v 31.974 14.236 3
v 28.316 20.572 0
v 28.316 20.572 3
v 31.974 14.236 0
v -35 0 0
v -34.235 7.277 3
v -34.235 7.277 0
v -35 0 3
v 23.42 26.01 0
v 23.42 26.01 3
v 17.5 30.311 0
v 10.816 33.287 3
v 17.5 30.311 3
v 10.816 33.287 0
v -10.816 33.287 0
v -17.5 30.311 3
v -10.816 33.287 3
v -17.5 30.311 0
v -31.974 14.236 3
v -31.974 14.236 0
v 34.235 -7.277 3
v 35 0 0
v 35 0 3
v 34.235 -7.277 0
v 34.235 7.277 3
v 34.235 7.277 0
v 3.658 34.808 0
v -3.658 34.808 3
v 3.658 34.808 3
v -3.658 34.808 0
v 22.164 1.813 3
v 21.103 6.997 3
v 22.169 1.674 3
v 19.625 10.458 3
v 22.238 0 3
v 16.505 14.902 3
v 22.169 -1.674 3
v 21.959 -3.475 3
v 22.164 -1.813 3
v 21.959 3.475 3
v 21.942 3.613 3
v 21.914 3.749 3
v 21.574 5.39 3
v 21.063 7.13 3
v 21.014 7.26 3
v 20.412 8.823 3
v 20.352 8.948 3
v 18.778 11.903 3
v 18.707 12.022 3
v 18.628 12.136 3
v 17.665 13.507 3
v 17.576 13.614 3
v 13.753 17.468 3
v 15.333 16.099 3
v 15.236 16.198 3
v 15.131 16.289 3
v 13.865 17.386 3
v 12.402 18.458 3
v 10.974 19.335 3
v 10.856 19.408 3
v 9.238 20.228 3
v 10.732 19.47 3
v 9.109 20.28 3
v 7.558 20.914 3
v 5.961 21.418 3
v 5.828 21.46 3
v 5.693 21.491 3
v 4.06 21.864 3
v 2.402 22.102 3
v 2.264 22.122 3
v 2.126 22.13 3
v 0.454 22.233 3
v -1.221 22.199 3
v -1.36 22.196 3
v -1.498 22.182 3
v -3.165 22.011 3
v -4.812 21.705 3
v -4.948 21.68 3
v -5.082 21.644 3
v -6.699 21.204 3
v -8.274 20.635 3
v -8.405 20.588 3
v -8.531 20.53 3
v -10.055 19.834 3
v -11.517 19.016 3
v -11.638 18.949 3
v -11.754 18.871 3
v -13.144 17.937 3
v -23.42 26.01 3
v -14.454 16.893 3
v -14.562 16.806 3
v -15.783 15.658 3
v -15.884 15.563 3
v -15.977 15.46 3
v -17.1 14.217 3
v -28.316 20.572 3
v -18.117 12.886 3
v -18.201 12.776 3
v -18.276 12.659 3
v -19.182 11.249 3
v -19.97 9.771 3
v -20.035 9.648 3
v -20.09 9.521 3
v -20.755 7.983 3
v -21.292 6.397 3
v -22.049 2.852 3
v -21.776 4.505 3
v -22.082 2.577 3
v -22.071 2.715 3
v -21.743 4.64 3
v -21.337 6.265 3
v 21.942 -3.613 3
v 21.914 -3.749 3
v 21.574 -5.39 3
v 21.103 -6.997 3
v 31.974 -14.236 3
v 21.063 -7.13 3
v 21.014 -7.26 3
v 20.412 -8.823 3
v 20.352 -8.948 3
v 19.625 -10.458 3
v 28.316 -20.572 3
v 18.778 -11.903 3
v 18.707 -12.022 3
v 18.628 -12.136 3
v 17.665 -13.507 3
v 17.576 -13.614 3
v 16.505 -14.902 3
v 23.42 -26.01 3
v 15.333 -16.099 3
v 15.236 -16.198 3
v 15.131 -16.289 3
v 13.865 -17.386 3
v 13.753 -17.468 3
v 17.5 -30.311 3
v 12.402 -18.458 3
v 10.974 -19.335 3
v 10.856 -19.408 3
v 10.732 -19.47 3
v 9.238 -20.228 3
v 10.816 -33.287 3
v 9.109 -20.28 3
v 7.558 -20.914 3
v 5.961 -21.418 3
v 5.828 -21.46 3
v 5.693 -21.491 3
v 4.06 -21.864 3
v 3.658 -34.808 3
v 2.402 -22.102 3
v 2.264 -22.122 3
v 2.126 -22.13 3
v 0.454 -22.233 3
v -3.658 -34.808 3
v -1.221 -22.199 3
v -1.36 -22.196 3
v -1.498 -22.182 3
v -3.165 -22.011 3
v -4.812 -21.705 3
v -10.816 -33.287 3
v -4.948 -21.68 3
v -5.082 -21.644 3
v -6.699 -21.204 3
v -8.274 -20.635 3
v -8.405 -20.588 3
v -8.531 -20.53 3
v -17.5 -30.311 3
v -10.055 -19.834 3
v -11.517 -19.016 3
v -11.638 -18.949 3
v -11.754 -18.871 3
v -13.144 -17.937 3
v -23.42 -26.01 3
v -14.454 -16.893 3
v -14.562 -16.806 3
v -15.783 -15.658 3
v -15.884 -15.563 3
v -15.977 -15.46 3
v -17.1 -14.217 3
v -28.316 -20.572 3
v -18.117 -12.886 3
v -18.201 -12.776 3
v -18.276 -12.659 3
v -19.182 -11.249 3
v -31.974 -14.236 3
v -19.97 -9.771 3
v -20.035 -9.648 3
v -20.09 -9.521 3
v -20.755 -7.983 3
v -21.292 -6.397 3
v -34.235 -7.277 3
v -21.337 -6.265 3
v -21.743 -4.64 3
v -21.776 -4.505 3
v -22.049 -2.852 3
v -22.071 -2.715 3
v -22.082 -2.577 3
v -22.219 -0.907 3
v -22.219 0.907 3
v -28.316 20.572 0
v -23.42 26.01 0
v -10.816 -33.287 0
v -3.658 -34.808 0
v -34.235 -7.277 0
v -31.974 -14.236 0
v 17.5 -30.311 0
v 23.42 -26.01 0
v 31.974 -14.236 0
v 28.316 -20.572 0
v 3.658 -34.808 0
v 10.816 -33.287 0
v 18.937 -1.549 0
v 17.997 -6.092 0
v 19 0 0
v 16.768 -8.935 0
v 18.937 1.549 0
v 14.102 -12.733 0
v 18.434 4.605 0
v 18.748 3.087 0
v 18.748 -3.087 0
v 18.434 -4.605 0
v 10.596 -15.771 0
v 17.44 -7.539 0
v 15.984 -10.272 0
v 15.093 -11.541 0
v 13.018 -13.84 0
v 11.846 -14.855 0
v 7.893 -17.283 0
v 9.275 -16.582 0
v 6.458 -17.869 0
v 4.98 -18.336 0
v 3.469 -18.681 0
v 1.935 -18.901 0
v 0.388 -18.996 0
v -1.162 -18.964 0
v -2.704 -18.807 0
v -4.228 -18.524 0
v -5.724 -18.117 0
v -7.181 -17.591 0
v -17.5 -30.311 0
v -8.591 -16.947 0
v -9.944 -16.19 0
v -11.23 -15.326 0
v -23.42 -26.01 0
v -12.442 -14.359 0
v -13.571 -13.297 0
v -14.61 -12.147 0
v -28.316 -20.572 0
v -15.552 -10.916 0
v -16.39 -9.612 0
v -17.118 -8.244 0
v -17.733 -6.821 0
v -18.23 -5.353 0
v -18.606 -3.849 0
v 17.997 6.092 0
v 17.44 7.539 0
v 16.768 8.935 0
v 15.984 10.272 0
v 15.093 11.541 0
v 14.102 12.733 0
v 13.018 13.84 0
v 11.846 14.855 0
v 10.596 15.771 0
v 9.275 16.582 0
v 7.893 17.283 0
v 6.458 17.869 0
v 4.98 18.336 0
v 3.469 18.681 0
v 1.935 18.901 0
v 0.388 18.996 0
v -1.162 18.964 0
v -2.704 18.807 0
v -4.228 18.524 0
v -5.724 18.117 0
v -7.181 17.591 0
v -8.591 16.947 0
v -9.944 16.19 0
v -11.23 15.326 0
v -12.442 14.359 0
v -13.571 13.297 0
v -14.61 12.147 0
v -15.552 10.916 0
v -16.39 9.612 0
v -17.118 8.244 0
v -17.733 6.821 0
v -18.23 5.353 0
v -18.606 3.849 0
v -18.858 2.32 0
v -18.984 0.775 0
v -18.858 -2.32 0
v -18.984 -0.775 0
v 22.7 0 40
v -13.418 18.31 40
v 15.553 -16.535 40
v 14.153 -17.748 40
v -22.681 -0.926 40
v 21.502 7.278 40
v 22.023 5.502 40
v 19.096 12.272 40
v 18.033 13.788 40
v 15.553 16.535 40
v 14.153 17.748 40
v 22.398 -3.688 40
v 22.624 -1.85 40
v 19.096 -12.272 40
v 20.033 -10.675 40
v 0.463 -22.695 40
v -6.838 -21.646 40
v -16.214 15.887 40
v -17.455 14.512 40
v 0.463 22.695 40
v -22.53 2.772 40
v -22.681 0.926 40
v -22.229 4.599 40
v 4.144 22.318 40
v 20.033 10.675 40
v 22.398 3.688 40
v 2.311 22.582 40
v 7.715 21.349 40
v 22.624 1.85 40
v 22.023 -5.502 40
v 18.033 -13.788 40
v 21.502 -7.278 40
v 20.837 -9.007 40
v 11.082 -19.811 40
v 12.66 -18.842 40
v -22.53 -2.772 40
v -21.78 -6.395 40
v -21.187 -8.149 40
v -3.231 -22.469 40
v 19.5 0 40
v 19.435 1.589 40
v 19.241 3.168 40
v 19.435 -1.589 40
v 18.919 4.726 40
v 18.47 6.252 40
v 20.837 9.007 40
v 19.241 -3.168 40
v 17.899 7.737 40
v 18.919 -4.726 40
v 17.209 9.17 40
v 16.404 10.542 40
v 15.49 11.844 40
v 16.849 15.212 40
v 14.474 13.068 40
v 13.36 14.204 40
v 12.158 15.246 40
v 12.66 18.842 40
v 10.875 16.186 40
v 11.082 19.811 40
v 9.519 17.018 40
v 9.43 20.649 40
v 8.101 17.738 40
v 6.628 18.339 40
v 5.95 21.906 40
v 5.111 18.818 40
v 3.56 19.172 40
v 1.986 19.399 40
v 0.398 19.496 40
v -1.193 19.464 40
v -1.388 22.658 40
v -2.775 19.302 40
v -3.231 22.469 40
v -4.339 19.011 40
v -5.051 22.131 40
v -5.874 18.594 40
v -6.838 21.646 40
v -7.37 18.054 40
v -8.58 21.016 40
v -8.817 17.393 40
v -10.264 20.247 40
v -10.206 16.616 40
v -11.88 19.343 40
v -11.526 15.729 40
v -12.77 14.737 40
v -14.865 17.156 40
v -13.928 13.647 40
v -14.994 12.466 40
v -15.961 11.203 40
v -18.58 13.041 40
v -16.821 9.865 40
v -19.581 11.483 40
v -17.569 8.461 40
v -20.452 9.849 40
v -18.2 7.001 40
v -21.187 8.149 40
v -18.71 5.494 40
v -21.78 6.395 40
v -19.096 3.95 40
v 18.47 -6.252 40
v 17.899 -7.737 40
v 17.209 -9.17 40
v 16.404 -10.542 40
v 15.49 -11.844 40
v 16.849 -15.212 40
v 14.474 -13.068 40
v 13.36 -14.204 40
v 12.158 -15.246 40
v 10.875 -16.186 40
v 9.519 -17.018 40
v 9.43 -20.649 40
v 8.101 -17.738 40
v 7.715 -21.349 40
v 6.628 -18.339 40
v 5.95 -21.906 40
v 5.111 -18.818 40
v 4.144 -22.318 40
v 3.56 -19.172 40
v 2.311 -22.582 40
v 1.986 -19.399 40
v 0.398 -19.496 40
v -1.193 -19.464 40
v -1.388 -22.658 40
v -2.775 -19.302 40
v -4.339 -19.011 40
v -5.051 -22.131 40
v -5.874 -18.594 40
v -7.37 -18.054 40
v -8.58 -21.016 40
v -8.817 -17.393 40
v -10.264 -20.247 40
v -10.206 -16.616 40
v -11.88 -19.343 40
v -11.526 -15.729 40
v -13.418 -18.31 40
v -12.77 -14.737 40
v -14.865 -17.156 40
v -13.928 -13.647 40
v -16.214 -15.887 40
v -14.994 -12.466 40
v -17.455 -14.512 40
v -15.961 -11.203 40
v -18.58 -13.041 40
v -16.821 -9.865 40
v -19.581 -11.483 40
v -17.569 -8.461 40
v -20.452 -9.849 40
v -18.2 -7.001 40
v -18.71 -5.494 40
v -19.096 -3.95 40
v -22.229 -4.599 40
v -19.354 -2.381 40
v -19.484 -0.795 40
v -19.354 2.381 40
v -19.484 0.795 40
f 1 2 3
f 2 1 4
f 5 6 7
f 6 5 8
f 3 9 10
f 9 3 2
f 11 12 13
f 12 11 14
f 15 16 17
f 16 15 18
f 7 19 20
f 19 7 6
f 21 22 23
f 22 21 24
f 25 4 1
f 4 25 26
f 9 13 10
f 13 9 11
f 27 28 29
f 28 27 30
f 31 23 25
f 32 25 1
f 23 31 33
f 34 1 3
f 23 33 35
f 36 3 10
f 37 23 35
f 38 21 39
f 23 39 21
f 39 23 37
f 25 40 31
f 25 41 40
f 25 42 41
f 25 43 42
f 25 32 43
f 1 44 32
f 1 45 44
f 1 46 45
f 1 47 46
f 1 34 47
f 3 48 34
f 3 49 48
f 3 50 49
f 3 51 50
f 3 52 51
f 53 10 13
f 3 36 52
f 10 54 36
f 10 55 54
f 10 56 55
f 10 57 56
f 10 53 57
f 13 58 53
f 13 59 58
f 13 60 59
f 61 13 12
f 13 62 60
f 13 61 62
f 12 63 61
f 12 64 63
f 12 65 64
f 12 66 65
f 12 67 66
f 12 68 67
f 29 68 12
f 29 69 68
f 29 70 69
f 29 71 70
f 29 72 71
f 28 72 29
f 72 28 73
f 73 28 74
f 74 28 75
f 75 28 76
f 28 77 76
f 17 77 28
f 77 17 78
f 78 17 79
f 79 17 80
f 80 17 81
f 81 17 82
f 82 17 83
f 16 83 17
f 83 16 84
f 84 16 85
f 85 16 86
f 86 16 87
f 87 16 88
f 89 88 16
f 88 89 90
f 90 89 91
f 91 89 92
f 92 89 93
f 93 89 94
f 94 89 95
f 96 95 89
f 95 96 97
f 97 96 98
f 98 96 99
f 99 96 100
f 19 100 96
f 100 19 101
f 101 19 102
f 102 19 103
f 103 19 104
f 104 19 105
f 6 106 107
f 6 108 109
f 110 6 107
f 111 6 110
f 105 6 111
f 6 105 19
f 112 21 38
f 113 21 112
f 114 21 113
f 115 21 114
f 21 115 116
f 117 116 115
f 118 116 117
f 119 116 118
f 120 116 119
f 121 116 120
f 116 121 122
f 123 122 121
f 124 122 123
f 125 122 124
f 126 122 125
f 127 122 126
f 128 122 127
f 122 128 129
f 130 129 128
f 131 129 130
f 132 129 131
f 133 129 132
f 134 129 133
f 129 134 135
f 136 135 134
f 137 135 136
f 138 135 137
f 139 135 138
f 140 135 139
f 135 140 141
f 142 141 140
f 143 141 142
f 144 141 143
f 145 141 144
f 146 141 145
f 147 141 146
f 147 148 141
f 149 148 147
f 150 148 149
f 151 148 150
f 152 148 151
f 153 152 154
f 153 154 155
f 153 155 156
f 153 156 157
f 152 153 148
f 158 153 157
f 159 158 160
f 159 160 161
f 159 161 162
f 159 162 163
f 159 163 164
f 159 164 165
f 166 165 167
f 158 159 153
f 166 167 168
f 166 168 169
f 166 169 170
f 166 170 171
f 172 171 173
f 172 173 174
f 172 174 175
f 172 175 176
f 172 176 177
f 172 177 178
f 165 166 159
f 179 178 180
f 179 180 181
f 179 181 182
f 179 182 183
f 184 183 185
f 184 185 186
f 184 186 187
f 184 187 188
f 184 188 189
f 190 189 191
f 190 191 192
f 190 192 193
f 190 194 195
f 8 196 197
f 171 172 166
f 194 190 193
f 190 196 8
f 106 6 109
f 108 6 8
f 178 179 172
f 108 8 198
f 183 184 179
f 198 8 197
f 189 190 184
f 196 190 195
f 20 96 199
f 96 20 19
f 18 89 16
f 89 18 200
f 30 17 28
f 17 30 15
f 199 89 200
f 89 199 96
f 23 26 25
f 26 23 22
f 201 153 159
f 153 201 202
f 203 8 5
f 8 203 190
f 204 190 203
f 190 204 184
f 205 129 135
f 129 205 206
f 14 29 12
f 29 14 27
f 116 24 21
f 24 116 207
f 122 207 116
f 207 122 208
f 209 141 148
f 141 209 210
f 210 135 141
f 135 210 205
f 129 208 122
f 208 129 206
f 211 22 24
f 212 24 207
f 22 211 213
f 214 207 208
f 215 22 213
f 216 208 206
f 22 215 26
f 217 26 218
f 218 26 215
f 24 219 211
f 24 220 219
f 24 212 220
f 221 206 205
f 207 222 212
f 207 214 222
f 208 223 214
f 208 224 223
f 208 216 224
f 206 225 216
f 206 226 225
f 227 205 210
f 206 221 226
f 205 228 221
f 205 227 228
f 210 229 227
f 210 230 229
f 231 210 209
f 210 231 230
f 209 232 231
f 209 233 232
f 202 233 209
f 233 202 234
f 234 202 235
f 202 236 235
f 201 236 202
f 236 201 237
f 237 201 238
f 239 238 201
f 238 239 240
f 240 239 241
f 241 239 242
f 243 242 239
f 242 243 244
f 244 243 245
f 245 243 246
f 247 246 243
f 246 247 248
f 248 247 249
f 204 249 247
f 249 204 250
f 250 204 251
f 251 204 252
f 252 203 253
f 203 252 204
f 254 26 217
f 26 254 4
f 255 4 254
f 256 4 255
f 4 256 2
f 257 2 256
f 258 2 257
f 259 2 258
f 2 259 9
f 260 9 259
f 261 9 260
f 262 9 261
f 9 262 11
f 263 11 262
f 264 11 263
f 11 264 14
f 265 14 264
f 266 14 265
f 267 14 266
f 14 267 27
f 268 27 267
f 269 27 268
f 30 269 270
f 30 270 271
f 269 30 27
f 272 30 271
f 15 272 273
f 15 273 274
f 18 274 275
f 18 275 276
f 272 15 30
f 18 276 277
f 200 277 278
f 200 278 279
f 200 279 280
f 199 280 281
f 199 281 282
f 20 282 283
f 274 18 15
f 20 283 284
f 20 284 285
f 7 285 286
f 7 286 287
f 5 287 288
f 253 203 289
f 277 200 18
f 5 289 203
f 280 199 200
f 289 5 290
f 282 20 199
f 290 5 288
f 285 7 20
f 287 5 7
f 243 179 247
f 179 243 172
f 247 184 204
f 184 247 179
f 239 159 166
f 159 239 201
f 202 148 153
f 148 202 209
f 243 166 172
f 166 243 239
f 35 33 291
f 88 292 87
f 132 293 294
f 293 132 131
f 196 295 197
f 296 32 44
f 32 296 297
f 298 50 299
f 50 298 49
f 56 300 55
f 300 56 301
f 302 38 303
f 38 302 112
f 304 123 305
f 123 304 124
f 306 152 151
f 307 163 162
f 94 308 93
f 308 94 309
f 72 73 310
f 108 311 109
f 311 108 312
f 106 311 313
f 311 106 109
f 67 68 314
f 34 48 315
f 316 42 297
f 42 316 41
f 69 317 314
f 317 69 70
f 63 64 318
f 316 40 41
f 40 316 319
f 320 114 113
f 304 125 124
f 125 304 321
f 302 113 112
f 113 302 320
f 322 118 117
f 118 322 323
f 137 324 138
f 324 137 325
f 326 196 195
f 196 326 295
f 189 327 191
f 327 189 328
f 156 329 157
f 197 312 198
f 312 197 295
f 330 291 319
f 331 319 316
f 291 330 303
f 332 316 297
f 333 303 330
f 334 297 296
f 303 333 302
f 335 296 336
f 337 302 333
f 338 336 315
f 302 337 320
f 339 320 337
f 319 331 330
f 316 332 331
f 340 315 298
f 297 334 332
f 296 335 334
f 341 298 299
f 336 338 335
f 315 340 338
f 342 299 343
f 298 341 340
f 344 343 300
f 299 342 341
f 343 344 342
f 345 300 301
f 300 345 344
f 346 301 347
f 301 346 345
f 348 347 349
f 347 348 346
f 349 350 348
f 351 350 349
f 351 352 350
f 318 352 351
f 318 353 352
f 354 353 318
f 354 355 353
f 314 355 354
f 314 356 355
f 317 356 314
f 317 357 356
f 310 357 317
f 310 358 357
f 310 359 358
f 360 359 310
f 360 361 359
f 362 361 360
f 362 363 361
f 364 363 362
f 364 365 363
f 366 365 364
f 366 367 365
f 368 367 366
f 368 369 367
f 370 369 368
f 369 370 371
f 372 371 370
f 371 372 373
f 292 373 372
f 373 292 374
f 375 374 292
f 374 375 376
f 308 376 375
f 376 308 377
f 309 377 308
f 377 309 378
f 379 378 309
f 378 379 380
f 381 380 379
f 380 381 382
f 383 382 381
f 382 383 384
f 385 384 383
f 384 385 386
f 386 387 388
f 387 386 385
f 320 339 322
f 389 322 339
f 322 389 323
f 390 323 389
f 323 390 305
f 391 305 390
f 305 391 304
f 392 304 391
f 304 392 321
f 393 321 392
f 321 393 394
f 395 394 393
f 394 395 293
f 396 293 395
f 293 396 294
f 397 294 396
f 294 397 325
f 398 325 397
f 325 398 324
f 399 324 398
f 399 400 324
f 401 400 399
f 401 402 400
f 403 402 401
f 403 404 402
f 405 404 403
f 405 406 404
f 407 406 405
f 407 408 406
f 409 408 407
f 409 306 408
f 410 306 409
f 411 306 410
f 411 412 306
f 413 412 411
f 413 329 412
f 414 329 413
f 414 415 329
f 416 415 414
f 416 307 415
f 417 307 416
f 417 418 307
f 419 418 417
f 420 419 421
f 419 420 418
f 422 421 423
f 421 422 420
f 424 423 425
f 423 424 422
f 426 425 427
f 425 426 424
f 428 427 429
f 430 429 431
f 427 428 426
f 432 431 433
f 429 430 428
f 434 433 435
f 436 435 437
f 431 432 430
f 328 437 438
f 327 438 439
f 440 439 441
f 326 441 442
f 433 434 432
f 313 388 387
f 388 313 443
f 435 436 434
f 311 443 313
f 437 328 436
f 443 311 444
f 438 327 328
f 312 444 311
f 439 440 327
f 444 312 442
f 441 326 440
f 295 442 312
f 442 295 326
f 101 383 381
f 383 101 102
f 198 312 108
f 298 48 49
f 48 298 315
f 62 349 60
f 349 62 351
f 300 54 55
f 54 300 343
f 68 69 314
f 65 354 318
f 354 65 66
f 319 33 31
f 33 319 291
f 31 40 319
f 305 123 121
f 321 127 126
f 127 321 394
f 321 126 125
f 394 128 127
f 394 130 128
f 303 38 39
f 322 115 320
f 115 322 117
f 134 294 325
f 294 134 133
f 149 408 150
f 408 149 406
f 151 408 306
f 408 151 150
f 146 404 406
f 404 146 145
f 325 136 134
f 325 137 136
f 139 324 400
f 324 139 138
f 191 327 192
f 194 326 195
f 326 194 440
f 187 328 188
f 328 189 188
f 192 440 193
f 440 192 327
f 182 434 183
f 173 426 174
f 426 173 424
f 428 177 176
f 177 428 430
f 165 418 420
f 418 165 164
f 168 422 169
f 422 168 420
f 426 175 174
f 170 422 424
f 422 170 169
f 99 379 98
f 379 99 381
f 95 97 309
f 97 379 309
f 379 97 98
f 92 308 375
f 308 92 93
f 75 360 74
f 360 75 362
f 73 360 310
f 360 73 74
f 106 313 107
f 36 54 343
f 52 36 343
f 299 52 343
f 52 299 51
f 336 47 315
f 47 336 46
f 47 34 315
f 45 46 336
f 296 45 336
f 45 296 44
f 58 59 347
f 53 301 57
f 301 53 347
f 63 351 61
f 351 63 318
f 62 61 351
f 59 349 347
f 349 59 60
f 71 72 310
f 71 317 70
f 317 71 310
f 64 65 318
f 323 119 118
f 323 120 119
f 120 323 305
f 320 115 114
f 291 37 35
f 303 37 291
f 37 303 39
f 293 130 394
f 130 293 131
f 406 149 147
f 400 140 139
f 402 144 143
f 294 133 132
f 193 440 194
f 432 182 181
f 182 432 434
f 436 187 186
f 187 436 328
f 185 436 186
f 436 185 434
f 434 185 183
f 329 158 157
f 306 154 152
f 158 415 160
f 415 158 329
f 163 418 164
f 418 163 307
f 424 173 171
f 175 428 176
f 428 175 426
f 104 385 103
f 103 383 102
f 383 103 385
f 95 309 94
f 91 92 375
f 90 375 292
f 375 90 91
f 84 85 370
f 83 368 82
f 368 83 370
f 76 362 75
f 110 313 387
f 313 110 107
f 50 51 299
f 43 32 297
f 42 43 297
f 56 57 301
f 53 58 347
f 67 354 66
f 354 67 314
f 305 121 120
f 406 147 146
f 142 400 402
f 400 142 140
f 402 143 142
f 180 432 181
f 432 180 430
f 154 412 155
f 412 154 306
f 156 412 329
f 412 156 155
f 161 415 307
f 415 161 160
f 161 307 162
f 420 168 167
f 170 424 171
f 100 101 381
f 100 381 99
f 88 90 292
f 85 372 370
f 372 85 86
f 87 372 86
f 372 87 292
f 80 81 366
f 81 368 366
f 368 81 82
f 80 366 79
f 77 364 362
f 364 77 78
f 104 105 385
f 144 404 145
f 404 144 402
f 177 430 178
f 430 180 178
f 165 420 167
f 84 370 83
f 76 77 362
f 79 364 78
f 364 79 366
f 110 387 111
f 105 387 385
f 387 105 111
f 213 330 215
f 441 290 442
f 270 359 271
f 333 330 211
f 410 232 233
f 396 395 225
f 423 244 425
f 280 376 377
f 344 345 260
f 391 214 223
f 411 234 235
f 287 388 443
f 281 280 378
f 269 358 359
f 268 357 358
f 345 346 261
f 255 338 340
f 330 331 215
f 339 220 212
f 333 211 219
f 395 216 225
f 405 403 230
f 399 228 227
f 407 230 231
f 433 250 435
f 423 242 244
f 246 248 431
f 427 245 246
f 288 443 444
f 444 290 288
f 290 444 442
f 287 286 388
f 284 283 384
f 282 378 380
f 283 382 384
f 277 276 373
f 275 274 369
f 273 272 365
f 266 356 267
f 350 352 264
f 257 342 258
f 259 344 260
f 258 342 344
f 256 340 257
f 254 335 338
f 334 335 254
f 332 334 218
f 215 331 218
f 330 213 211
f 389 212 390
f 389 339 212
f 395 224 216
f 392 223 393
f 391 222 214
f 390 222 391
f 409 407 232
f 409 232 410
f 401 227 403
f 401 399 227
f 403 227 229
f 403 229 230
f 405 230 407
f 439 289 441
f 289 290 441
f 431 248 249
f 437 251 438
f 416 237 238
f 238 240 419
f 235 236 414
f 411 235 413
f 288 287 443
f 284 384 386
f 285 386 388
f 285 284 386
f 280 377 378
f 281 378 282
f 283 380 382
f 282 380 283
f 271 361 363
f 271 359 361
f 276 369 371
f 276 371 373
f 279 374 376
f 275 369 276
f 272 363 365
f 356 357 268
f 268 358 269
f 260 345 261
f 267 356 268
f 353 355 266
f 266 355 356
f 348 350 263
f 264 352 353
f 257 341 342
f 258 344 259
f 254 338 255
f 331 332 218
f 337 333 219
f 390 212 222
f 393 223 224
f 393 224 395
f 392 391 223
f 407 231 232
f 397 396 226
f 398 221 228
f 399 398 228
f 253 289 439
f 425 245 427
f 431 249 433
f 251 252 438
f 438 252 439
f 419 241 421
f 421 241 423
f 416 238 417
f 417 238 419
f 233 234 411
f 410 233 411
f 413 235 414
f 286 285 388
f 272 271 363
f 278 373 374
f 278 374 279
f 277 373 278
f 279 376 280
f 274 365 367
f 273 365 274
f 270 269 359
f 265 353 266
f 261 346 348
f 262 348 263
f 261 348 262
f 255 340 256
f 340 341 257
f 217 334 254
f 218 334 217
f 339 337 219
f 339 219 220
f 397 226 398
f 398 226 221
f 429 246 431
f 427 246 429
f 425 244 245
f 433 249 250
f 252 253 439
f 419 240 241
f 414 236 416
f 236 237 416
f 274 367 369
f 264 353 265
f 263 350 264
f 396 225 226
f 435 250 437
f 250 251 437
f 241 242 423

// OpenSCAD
w=2*0.4;


//input();

output(w*4);


module output(w)
{
    d=38;
    h=40;
    delta=1;
    
    difference()
    {        
        union()
        {
            cylinder(d=70,h=3);
            cylinder(d1=d+2*w, d2=d+2*w+delta,h=h,$fn=77);
        }            
        cylinder(d1=d, d2=d+delta,h=h,$fn=77);
    }
}

module input()
{
    difference()
    {
        tube(33, 20);
        tube(33, 20, w);
    }
}

module tube(d,h,w=0,delta=1)
{
    cylinder(d1=d-2*w+delta, d2=d-2*w,h=h,$fn=77);
}
